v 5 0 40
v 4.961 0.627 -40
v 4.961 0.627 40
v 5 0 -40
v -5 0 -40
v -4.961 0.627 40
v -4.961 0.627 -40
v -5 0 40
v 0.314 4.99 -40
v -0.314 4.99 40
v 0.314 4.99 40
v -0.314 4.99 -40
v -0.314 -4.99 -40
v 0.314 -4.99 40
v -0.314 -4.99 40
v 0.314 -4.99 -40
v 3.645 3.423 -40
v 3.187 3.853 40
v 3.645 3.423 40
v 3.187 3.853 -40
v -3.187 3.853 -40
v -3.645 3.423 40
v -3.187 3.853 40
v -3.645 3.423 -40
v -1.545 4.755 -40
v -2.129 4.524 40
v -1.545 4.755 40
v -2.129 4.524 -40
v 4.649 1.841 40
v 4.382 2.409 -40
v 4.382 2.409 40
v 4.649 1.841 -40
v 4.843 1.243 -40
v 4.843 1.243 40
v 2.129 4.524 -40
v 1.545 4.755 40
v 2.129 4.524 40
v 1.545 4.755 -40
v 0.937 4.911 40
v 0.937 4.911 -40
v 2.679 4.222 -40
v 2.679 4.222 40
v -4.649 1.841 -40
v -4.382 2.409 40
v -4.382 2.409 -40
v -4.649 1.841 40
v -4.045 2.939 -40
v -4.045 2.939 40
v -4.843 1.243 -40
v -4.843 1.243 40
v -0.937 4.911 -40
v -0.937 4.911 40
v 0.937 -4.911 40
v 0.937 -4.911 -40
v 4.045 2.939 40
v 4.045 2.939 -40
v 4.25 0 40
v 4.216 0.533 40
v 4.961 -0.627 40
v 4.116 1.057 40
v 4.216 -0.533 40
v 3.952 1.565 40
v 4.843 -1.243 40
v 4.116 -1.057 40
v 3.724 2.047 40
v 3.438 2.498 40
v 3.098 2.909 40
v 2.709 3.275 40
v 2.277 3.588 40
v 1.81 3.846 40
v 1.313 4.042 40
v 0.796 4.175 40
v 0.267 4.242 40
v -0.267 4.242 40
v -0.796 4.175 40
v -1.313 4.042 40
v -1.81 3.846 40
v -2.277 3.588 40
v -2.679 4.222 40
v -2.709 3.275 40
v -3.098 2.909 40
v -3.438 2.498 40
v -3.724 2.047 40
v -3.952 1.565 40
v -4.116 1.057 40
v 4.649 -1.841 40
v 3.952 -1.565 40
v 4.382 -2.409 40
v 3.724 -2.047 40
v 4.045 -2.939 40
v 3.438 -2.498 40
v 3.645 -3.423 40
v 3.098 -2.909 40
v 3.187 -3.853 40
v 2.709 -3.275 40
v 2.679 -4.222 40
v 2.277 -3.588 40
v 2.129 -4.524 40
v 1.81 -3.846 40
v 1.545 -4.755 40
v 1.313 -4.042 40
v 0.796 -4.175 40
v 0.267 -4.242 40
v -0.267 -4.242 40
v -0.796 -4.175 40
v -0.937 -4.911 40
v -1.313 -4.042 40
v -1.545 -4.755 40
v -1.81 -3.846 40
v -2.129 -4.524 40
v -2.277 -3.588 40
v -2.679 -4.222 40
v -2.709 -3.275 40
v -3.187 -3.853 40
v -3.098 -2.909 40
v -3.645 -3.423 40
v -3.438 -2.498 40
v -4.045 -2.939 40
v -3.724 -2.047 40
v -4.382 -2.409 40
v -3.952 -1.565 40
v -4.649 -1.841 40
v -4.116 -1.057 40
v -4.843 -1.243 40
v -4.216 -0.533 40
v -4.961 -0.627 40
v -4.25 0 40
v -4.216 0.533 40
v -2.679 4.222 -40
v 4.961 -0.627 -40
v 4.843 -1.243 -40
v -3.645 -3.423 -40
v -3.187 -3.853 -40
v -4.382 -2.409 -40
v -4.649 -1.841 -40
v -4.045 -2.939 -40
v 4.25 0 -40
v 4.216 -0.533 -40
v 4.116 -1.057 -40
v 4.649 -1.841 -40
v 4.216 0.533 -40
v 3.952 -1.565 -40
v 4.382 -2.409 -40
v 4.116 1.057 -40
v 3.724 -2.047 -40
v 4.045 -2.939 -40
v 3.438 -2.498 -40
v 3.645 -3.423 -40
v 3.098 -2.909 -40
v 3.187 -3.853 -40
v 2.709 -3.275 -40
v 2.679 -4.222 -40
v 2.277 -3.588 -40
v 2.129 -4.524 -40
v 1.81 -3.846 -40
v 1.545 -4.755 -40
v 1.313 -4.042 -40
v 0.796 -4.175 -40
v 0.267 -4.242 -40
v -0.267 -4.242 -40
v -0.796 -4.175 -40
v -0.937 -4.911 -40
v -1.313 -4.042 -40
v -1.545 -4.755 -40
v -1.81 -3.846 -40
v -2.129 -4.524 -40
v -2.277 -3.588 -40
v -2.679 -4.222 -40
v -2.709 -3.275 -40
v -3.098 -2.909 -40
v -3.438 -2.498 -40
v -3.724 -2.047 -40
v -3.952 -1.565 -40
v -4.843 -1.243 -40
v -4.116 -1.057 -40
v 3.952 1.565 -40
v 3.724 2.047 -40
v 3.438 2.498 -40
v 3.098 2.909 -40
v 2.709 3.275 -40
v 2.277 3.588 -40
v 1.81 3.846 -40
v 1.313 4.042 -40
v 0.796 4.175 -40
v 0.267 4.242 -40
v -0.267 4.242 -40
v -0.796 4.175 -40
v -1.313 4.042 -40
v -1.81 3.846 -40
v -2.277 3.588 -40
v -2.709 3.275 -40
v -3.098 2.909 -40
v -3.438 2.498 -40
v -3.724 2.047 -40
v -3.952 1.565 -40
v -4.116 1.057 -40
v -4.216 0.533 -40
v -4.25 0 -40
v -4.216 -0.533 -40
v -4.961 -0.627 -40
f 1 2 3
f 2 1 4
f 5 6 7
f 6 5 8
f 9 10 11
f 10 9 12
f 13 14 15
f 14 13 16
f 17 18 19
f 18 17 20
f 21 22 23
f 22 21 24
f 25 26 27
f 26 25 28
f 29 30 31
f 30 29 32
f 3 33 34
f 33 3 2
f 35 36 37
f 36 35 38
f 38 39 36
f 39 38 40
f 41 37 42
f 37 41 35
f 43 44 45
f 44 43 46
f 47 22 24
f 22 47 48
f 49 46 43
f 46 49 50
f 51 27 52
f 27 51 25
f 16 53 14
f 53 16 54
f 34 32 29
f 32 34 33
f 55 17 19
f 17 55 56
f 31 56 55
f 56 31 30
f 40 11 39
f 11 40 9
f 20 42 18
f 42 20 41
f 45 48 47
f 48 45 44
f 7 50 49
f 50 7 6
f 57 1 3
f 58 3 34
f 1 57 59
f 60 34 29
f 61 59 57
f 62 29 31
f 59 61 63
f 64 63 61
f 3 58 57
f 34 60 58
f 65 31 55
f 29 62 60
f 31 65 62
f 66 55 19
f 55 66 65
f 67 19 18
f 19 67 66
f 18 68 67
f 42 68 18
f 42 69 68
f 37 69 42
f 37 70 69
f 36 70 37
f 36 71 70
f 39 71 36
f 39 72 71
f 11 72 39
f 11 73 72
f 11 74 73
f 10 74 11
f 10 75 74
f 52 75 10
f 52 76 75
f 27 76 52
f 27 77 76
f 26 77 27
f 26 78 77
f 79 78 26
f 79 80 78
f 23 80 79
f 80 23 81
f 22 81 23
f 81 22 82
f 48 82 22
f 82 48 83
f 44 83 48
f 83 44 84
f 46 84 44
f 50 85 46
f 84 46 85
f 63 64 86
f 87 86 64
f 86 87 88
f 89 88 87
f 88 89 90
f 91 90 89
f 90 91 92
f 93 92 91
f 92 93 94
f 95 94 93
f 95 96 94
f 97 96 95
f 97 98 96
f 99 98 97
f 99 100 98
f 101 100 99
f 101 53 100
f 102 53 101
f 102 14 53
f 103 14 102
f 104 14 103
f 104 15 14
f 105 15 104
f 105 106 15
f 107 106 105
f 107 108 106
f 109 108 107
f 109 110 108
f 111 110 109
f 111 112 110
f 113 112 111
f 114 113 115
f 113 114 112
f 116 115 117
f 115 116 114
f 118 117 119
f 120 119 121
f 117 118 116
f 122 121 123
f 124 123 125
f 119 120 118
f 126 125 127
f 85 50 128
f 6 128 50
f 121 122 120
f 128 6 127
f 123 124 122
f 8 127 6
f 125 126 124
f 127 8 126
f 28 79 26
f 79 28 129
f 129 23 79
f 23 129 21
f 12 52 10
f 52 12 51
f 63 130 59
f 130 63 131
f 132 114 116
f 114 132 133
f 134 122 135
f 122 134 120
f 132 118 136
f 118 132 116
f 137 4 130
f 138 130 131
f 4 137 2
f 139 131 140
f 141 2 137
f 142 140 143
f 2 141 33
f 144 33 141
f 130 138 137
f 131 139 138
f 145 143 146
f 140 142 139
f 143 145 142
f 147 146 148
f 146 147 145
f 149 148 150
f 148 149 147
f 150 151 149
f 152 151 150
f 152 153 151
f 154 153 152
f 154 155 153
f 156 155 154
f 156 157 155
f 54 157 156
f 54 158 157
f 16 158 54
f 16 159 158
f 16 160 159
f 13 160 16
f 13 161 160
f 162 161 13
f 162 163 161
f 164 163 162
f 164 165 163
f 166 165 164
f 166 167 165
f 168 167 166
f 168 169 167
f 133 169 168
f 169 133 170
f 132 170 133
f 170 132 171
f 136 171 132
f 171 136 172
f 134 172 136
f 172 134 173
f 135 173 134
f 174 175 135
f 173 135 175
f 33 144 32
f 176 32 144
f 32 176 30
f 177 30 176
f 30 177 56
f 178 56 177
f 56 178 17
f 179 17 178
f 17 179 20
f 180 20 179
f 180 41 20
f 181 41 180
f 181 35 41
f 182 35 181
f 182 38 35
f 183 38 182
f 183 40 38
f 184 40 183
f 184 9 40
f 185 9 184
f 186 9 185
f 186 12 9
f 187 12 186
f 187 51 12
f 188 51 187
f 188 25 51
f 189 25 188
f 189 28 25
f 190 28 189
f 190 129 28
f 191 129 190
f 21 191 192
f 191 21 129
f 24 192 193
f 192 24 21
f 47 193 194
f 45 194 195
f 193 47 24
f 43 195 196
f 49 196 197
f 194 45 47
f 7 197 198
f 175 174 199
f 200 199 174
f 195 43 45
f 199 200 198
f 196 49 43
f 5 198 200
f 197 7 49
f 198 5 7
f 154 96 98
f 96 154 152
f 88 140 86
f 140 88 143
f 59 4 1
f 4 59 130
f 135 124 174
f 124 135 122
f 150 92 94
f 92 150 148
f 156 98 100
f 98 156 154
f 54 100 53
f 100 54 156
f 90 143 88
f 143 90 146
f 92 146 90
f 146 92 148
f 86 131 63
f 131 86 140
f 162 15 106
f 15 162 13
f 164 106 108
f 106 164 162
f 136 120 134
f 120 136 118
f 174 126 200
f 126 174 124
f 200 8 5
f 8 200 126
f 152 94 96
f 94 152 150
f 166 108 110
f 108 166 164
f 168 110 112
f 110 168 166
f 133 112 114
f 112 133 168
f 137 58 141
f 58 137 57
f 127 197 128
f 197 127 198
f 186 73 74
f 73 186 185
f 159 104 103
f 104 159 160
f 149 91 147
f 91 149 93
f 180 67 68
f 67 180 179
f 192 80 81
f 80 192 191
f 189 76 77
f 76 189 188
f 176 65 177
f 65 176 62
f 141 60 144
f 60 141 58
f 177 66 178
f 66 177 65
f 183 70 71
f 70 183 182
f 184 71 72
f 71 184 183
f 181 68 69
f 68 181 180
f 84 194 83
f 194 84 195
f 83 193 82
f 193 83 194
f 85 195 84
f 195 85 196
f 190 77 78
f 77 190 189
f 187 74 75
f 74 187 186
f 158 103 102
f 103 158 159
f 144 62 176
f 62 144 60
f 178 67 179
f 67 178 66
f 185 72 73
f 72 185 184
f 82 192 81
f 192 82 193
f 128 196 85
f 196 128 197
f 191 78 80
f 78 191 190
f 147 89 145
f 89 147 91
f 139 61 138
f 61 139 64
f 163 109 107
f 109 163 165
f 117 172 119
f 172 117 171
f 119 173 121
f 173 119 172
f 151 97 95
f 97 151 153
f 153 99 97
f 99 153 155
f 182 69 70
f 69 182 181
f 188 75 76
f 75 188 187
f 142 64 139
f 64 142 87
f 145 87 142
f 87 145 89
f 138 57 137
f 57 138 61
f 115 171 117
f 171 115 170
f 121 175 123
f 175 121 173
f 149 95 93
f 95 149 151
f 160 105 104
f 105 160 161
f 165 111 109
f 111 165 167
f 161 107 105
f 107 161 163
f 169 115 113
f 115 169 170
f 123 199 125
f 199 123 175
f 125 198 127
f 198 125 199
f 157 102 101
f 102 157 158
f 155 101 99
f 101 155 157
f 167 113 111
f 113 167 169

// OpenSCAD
$fn = 50;


difference() {
	union() {
		translate(v = [0, 0, -40.0000000000]) {
			cylinder(h = 80, r = 5.0000000000);
		}
	}
	union() {
		translate(v = [0, 0, -100.0000000000]) {
			cylinder(h = 200, r = 4.2500000000);
		}
	}
}
